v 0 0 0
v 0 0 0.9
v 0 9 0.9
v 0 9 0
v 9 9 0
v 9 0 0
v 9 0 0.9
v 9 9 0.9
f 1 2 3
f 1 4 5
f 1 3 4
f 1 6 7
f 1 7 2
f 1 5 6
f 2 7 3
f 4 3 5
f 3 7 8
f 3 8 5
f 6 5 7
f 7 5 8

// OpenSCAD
/* Warning, this is a very basic generator with a lot of approximation 
input data : [QFN, RGX, 9x9x0.9mm, 64, , B, C04-00260B]
generated by com.zoubworld.electronics.cad.model3d.Basic
Date : Sun Feb 15 10:50:48 CET 2026
*/

//body
color("black")
translate([0,0,0])
cube([9.0,9.0,0.9], center=false);
